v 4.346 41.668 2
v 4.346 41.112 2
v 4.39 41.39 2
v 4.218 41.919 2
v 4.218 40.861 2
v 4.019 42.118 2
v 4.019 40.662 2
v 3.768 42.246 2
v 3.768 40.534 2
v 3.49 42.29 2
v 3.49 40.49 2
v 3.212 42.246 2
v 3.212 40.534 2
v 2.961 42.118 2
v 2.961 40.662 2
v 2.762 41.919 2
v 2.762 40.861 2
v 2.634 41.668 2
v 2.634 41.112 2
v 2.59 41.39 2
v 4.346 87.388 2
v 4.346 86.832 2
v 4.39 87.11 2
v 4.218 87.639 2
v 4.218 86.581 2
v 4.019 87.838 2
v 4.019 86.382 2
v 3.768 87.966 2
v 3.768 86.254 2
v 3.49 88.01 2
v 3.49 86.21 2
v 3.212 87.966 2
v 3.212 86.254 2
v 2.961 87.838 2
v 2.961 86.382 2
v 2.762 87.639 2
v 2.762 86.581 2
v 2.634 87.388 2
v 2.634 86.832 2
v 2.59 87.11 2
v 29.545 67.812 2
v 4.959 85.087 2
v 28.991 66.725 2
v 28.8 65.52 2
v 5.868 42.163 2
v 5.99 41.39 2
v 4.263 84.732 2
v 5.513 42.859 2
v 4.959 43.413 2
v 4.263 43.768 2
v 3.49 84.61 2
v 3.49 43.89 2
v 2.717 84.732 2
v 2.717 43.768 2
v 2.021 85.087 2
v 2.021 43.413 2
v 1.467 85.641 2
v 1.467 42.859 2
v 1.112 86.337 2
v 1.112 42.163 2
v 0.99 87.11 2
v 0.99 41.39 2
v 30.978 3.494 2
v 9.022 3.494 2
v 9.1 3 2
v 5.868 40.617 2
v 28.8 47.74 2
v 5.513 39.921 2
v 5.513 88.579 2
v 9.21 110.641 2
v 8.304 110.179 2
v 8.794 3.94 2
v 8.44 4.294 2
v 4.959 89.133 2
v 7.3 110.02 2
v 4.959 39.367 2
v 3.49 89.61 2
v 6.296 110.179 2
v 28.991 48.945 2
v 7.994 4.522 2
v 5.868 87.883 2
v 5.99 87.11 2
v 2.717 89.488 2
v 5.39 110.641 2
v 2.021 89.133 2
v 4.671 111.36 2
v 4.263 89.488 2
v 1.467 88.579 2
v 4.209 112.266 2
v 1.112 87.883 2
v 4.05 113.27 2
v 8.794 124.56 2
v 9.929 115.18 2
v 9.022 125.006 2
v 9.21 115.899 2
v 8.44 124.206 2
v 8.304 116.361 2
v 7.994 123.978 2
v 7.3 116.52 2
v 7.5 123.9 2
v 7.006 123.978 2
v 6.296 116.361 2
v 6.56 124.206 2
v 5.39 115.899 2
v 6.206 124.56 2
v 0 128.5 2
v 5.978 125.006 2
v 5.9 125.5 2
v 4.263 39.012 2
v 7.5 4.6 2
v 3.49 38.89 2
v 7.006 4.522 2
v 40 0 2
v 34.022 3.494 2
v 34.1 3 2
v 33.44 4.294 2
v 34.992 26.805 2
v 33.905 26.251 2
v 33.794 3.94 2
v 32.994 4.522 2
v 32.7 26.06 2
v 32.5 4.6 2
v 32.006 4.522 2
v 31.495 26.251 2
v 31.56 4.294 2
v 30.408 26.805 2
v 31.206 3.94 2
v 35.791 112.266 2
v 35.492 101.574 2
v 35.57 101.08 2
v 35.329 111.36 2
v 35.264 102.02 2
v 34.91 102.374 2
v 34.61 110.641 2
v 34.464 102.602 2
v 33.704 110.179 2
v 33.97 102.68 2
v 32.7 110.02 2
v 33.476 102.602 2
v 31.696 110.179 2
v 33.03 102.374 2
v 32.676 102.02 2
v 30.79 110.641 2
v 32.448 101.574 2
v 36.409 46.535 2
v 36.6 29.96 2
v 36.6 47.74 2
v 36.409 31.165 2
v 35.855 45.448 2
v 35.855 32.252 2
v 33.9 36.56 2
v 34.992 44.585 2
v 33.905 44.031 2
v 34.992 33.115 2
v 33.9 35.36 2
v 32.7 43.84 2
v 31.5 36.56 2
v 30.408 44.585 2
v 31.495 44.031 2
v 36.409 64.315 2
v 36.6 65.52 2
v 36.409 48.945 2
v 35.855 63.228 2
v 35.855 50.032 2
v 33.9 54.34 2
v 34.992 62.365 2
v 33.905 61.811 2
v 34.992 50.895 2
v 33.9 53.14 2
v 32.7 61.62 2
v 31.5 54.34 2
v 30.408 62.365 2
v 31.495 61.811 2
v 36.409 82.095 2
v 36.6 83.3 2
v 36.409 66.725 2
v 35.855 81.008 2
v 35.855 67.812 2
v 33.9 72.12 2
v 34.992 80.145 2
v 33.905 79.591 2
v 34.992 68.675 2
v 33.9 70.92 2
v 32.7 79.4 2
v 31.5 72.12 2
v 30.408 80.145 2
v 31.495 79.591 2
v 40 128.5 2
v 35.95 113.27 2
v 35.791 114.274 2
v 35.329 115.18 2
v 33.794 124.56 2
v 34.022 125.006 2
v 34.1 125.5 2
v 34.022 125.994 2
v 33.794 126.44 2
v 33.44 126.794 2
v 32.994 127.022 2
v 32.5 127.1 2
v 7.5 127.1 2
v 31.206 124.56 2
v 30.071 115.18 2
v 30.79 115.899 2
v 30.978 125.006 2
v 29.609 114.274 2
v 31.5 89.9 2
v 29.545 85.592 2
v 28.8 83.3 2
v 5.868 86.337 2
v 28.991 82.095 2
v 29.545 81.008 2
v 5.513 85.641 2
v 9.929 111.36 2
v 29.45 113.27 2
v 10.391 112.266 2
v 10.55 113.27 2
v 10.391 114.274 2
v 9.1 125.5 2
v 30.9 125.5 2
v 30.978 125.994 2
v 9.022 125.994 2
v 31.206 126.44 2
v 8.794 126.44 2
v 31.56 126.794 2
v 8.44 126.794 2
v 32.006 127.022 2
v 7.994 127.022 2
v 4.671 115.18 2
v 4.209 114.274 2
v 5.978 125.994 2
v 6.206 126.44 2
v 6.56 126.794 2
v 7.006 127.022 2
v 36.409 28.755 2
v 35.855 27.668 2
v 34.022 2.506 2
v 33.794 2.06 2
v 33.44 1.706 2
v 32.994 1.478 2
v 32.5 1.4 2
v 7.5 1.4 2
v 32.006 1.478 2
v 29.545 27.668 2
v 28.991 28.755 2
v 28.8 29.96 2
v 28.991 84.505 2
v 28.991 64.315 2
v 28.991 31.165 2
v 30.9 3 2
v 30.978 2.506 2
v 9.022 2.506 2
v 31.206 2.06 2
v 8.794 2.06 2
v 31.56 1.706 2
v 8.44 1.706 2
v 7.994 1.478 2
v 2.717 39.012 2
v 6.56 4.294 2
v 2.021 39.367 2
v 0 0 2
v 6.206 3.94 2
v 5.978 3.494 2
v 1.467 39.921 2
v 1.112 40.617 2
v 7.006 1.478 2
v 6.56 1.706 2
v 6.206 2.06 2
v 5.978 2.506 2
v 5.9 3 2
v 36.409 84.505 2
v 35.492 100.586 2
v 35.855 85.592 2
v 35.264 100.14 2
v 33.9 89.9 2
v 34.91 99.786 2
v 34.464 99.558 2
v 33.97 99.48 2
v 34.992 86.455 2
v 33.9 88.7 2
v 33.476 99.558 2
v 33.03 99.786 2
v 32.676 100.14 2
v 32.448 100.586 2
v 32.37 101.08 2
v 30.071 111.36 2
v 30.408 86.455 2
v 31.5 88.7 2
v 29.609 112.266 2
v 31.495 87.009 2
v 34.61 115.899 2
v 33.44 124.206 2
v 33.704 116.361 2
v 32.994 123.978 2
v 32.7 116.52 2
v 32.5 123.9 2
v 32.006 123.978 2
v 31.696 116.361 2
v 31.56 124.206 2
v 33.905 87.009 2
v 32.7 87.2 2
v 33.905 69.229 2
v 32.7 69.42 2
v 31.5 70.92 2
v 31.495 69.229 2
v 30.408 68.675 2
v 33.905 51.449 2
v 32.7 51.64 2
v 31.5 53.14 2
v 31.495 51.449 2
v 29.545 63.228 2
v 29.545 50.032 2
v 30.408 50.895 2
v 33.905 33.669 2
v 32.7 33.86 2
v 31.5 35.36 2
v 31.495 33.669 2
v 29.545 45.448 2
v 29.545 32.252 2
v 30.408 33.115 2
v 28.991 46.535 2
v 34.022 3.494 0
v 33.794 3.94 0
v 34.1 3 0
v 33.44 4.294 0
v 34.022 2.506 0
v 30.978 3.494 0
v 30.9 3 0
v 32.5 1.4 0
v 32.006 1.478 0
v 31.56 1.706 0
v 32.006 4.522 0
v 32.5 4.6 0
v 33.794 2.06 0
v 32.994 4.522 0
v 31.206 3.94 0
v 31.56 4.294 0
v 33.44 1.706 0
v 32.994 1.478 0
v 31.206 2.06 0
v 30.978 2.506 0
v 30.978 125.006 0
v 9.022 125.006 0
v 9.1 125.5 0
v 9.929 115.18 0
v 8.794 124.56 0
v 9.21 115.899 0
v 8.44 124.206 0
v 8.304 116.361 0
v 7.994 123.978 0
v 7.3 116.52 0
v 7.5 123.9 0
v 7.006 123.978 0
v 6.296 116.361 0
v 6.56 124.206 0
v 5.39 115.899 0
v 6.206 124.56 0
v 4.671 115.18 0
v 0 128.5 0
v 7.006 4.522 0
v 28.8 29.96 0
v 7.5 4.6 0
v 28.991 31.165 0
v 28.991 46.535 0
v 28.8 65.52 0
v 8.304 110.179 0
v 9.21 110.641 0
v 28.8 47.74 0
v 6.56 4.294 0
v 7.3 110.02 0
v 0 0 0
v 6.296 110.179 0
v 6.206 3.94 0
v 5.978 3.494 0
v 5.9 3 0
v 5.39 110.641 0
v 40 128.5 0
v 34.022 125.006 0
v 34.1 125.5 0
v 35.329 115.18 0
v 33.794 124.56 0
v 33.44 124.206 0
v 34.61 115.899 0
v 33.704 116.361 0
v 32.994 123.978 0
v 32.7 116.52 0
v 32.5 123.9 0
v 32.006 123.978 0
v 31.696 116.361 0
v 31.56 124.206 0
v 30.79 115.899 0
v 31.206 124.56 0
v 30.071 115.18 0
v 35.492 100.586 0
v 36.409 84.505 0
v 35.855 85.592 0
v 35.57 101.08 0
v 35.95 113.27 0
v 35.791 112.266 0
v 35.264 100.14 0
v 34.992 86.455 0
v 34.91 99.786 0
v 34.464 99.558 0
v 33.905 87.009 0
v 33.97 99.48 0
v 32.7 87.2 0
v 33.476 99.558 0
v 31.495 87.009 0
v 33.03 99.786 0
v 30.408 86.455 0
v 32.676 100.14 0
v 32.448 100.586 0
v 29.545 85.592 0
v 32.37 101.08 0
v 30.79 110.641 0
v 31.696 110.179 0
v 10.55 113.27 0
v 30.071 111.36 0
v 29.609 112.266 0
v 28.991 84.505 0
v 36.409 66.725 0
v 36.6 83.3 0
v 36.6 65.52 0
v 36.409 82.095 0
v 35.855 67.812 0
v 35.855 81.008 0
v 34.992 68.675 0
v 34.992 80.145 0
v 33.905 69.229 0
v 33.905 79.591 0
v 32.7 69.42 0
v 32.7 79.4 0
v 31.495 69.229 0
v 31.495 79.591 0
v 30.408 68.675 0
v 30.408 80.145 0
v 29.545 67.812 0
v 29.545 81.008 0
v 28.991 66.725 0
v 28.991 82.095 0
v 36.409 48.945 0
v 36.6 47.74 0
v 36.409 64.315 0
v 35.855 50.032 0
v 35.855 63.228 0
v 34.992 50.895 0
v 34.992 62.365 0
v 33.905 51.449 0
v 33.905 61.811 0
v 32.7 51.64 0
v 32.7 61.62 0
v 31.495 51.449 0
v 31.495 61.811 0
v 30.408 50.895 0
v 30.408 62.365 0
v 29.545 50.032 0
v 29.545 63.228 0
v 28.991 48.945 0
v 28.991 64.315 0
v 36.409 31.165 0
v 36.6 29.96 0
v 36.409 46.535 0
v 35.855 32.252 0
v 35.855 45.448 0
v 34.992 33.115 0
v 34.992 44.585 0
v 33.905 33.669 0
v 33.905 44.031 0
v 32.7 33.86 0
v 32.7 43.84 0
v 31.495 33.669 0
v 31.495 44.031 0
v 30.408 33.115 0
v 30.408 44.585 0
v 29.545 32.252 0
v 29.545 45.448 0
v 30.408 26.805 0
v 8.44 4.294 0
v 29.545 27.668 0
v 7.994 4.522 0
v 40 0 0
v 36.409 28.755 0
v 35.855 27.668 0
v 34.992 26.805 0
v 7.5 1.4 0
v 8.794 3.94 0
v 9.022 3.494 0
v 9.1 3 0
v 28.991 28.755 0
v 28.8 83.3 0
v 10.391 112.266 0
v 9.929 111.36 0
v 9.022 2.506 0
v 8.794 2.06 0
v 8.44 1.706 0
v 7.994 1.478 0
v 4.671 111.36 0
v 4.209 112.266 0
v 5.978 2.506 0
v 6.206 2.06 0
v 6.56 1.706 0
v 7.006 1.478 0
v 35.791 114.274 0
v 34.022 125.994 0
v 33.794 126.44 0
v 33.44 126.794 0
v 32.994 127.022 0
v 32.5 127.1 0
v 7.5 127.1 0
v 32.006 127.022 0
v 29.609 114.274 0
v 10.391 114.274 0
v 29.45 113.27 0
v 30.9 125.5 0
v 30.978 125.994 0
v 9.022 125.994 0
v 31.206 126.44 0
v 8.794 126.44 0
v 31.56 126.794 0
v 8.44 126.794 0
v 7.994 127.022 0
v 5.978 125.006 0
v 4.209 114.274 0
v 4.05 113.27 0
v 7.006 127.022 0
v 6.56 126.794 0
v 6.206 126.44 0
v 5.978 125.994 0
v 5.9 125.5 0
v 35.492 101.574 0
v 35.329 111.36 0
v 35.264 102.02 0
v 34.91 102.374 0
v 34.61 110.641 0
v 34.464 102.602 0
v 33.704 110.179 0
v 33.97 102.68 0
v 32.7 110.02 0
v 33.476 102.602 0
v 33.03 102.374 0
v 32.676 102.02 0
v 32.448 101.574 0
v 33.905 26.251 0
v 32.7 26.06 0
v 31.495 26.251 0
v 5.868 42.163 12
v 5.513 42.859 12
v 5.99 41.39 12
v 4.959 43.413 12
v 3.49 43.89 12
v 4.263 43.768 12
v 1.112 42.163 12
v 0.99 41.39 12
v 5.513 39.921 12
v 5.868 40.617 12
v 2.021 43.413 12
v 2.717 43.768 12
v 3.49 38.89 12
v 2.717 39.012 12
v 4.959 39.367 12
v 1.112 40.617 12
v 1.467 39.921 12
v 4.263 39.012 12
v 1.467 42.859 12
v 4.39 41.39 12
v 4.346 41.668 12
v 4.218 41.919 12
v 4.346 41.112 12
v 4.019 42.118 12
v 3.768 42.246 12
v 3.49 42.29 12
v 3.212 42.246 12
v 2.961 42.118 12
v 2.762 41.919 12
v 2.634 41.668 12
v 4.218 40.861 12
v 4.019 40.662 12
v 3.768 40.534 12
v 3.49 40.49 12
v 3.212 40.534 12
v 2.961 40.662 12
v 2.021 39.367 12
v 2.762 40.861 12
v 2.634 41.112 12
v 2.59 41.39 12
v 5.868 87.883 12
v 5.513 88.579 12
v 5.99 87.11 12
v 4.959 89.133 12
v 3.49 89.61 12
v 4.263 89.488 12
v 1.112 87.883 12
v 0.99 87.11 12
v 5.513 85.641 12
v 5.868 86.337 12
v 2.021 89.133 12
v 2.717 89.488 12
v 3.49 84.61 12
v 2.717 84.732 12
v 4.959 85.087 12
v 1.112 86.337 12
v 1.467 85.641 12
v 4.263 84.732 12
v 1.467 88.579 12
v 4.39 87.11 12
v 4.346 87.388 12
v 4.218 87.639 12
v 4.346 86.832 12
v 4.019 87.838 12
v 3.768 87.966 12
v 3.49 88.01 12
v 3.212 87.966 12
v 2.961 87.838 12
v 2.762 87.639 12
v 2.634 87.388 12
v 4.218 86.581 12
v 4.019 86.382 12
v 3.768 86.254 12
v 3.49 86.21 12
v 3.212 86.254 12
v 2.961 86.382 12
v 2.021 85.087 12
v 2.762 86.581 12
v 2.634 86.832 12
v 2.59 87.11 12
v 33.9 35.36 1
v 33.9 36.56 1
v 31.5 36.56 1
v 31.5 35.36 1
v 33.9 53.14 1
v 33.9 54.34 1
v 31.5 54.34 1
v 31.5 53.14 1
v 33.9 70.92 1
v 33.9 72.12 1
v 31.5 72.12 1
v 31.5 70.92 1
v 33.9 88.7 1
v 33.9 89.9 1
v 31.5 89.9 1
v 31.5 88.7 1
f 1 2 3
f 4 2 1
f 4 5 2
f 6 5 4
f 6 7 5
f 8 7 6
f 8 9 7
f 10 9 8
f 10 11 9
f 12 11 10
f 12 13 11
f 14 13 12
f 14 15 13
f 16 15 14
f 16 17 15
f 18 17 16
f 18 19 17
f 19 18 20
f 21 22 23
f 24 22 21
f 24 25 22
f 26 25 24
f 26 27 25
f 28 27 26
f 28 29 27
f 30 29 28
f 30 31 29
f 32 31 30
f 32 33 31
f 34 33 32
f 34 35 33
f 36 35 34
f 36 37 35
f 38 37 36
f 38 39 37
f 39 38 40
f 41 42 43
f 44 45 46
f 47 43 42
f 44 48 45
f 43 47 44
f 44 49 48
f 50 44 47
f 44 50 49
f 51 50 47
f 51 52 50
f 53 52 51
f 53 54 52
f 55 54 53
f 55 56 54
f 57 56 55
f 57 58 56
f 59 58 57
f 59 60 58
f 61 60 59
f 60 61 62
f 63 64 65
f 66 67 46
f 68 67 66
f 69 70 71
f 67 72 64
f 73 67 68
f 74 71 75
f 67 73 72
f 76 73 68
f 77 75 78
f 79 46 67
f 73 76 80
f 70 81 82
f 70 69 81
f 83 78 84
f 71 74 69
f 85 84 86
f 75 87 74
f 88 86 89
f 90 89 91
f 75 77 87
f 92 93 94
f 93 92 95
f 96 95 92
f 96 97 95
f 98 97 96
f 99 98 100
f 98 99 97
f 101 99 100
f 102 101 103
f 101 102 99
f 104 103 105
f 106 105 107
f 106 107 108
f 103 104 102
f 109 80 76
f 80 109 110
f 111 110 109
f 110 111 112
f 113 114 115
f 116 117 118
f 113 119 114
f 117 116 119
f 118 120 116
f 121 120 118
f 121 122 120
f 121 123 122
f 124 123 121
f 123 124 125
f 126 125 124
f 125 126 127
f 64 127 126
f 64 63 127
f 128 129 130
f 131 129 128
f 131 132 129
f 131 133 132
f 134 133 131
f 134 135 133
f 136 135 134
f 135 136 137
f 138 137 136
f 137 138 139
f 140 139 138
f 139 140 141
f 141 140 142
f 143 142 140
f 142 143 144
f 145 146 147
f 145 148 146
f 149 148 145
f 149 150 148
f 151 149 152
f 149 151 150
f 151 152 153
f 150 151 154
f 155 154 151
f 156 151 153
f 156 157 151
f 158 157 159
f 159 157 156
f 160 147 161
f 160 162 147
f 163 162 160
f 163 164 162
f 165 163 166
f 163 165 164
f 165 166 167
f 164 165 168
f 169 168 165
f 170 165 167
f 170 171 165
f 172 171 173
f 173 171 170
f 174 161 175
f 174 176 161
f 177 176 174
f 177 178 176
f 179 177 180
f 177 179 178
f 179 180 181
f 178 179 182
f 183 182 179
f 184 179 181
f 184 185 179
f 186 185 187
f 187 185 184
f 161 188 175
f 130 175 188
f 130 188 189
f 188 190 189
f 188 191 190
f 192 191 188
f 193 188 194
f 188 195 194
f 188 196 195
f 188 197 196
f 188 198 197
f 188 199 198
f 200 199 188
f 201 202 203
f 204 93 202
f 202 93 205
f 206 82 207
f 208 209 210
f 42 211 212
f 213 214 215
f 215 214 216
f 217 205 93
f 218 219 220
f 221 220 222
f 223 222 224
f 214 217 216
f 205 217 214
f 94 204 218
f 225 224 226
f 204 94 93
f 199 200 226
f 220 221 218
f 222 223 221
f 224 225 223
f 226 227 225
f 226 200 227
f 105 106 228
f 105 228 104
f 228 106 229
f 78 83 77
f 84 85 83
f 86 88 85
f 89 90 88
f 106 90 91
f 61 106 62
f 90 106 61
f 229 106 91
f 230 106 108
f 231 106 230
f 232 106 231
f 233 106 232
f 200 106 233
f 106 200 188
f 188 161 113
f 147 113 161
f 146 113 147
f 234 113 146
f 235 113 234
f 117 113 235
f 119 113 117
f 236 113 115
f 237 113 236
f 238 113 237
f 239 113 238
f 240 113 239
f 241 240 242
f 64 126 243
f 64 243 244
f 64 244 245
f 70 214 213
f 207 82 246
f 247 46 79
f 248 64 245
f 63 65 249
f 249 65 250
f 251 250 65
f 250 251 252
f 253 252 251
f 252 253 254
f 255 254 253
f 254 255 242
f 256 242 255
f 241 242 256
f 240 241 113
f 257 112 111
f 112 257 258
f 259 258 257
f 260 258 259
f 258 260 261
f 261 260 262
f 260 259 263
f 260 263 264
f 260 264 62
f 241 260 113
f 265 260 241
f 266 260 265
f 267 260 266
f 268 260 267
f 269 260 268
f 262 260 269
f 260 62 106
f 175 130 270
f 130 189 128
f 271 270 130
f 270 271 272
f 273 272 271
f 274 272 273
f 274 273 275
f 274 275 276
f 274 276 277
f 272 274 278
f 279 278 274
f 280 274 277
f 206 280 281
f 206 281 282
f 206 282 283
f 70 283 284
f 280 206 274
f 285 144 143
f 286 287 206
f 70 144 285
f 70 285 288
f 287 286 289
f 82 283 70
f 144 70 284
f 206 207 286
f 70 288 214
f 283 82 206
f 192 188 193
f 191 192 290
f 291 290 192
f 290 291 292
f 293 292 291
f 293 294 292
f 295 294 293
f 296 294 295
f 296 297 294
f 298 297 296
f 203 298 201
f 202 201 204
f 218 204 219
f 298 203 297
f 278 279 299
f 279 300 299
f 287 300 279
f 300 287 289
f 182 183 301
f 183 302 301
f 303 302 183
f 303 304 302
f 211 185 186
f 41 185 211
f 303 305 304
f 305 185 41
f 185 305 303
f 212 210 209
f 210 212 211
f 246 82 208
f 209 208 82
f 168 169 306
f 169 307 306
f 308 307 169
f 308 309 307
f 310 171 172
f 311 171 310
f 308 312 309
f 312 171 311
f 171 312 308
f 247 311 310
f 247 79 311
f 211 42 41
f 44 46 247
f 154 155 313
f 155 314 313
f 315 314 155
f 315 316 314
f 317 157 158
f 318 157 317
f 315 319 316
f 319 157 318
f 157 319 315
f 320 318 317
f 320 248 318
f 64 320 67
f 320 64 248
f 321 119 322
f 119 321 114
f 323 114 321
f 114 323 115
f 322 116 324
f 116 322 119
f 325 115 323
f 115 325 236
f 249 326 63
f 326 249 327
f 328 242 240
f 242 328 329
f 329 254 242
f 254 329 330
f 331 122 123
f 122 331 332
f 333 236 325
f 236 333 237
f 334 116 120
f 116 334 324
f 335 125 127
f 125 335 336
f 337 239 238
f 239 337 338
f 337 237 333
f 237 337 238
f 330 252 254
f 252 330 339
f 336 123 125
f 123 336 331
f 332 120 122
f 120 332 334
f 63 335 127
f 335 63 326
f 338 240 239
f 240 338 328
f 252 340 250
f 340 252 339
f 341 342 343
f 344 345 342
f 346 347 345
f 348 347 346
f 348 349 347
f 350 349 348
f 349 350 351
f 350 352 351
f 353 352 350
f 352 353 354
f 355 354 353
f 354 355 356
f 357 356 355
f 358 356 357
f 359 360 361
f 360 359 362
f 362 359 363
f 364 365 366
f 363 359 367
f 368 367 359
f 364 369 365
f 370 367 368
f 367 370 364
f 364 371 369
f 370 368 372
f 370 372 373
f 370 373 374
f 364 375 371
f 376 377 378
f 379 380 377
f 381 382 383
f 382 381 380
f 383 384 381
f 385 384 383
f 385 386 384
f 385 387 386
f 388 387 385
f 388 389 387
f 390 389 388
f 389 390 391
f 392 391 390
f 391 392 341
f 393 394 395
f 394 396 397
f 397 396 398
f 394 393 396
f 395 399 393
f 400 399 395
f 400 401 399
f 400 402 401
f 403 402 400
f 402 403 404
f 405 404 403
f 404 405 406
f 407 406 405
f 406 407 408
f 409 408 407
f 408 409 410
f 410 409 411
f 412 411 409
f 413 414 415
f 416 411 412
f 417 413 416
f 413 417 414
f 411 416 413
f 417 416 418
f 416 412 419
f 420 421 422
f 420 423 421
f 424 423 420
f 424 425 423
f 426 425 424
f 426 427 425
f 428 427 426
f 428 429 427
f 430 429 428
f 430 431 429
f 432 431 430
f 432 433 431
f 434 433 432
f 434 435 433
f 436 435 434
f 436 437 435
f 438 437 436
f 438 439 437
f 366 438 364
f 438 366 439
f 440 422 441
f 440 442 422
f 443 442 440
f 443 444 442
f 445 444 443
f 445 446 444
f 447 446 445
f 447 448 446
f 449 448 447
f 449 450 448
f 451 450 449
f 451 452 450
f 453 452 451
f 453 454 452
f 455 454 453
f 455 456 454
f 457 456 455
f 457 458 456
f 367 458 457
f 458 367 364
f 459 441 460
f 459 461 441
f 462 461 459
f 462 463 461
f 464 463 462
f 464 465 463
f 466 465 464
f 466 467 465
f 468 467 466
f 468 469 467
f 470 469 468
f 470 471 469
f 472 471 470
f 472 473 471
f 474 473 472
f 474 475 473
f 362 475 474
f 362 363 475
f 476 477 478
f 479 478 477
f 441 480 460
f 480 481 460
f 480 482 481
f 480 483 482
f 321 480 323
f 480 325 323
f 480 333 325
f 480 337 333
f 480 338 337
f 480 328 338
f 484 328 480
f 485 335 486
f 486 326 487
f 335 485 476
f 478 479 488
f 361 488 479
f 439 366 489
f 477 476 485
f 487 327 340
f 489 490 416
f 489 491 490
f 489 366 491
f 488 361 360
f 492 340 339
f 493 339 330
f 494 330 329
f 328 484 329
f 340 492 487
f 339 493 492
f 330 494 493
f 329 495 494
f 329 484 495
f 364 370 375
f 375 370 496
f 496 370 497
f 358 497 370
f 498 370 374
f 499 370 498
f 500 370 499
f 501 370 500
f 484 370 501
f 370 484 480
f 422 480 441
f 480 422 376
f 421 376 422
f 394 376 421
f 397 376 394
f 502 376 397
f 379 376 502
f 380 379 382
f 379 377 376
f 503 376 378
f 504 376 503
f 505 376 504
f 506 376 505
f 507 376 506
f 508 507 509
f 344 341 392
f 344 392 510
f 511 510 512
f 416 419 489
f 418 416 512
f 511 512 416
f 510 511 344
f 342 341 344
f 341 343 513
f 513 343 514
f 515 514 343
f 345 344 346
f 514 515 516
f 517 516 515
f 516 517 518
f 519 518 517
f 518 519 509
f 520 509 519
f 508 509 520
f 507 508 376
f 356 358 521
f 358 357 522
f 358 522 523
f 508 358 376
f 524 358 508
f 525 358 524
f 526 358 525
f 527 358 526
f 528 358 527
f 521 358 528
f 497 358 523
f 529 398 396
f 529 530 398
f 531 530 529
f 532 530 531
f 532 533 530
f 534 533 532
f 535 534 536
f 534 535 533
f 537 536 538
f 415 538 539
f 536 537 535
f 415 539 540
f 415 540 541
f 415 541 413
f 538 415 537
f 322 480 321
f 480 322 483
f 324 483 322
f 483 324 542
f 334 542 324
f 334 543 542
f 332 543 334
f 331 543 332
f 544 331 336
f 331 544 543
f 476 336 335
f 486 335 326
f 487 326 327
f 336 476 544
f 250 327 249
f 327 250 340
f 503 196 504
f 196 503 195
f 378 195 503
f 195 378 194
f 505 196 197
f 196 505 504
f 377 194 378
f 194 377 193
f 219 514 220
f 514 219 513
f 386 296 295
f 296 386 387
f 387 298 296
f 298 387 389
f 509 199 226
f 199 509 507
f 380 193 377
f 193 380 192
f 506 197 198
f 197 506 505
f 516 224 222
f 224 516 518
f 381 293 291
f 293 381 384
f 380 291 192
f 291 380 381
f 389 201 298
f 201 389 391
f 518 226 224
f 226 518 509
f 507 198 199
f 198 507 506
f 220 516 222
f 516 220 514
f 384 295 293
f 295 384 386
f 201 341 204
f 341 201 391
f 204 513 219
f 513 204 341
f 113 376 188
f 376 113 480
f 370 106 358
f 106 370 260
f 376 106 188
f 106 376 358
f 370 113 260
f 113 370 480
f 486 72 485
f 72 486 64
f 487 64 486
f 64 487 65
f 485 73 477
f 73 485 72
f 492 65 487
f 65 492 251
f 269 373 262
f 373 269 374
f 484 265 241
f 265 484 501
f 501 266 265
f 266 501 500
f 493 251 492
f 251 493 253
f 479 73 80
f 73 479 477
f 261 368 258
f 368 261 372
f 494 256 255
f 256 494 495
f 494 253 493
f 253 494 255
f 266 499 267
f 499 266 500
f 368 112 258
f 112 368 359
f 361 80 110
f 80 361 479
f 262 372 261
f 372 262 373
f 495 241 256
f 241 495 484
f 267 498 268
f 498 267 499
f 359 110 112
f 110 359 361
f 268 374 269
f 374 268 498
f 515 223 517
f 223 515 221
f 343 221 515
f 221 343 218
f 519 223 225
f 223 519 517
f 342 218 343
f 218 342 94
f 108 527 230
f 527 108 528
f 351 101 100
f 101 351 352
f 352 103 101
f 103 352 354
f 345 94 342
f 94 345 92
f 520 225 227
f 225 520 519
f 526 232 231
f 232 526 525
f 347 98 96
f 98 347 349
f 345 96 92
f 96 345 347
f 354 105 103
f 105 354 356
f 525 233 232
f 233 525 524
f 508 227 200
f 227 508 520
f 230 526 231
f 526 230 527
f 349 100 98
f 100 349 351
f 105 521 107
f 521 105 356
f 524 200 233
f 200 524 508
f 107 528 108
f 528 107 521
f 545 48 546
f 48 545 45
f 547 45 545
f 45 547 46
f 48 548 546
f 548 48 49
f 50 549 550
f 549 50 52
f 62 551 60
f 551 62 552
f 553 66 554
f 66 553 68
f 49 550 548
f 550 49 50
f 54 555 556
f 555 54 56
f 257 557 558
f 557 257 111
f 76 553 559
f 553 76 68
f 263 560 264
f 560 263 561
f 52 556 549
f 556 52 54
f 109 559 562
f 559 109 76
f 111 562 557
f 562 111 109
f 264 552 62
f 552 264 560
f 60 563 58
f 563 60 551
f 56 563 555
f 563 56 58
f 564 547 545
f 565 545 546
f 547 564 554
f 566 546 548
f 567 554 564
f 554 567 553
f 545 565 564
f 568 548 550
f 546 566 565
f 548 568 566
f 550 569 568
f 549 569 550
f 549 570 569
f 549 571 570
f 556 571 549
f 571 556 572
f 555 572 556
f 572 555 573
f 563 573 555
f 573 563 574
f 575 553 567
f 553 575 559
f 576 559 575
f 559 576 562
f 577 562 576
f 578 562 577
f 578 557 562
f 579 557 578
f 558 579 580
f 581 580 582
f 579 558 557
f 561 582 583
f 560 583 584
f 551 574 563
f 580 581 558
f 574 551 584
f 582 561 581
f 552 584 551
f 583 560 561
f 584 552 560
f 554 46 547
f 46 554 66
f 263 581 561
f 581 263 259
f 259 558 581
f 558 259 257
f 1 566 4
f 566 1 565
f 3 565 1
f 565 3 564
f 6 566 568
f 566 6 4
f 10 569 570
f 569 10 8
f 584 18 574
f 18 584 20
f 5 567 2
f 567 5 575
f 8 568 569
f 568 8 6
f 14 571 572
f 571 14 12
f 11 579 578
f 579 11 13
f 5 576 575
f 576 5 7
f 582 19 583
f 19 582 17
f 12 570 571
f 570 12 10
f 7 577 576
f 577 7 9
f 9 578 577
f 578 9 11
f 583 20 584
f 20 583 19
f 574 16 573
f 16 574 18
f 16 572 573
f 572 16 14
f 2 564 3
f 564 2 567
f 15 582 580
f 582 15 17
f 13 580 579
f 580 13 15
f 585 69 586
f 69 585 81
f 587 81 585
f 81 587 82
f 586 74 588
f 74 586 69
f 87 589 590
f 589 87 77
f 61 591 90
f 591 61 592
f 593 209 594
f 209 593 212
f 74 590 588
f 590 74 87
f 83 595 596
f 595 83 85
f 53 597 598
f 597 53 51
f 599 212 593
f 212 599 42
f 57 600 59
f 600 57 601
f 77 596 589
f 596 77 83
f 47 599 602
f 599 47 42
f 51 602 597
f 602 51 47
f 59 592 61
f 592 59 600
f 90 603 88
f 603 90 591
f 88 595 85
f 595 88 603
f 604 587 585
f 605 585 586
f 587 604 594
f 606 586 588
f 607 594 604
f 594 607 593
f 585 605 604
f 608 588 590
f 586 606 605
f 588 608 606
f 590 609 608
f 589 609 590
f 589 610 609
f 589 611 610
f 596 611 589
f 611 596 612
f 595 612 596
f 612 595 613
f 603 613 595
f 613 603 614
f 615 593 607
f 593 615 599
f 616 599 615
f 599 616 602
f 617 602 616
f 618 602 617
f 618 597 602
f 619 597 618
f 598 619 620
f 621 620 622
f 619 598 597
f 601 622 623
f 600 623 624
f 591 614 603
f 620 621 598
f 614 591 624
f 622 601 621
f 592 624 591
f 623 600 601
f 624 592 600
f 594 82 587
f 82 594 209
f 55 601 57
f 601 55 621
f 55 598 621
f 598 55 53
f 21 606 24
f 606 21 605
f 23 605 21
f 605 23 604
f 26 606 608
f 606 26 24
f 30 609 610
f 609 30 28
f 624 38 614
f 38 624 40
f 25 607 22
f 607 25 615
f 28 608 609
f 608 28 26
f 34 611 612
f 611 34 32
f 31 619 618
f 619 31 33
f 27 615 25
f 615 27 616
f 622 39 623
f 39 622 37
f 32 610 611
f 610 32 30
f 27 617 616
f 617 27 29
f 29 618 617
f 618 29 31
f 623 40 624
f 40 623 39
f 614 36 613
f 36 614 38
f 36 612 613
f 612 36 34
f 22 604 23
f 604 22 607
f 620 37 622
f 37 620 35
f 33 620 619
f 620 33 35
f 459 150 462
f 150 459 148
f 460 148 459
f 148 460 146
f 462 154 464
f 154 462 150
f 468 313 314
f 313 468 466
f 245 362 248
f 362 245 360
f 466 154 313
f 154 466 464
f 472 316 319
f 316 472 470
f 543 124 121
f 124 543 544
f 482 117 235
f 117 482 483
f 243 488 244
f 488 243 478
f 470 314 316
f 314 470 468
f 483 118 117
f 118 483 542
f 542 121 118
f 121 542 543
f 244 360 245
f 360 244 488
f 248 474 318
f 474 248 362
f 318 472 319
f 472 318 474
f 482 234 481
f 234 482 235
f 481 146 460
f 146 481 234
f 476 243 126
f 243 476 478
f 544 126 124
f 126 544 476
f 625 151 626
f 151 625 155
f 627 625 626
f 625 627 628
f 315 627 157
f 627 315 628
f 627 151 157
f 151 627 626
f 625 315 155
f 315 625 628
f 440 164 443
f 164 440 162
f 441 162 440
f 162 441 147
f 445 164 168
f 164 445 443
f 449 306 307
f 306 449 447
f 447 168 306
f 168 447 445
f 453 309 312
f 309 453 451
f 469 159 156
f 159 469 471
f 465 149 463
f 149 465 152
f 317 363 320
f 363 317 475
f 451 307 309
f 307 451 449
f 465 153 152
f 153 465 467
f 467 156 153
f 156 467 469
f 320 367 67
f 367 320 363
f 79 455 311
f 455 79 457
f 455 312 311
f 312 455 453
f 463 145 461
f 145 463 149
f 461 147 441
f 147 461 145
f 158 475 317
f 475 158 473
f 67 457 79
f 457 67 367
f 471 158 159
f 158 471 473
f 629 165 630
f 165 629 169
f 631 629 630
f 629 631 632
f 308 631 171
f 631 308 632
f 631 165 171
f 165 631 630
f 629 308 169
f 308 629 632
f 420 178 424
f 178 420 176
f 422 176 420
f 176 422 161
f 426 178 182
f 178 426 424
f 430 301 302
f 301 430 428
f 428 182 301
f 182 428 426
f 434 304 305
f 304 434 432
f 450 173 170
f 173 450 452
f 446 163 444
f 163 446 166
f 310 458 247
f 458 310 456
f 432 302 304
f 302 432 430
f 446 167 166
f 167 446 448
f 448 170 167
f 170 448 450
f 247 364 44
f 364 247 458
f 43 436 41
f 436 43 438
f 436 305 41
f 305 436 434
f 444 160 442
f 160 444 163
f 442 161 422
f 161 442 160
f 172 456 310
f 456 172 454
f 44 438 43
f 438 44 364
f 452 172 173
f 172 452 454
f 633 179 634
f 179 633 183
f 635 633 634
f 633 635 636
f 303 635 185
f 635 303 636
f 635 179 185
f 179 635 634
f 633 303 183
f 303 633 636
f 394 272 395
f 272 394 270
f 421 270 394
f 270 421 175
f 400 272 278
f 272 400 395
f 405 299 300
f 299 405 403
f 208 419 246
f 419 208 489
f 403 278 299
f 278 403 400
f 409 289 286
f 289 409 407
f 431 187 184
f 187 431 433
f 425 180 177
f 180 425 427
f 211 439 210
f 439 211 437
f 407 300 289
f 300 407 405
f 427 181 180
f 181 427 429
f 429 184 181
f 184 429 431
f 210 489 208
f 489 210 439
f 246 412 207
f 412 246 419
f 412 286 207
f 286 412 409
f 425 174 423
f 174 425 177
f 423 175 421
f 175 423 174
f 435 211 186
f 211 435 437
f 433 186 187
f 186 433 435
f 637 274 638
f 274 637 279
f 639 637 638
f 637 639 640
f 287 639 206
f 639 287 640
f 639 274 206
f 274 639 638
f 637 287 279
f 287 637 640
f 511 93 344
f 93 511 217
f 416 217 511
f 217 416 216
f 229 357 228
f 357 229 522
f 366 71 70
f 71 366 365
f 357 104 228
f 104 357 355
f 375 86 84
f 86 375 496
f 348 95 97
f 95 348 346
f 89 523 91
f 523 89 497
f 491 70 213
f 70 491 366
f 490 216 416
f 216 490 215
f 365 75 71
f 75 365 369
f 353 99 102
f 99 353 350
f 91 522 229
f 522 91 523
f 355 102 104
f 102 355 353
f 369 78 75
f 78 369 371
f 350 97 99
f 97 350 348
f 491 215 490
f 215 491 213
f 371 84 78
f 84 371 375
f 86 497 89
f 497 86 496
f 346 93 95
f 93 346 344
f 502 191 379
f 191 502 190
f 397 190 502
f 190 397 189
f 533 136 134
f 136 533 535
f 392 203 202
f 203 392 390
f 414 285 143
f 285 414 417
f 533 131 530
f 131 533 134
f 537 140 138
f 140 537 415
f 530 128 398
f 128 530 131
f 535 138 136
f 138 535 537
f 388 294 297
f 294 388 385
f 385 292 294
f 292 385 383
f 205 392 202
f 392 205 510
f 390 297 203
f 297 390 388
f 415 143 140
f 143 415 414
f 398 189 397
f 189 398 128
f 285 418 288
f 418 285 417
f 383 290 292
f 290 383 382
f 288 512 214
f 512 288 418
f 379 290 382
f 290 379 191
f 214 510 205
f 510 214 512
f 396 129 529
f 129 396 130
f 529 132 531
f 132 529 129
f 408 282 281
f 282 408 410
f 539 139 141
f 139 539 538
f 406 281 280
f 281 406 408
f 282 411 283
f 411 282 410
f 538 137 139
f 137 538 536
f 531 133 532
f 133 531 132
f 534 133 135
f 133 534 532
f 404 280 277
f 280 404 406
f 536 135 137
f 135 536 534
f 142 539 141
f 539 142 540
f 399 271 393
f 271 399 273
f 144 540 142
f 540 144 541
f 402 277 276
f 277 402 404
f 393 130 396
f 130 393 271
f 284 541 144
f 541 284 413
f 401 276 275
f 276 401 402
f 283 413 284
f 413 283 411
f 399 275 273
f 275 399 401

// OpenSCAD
// file: ../../../share/openscad/eurorack-panel.scad
// this is based on A100 spec from doepfer https://doepfer.de/a100_man/a100m_e.htm

eurorack_panel_height = function() 128.5;
eurorack_panel_width = function(width_in_hp) width_in_hp * 5;

module eurorack_panel(width_in_hp, thickness=2) {
    difference() {
        cube([eurorack_panel_width(width_in_hp), eurorack_panel_height(), thickness]);

        translate([7.5, 3, 0])
            cylinder(thickness, d=3.2, $fn=20);
        translate([7.5, eurorack_panel_height() - 3, 0])
            cylinder(thickness, d=3.2, $fn=20);

        if (width_in_hp >= 8) {
            translate([eurorack_panel_width(width_in_hp) - 7.5, 3, 0])
                cylinder(thickness, d=3.2, $fn=20);
            translate([eurorack_panel_width(width_in_hp) - 7.5, eurorack_panel_height() - 3, 0])
                cylinder(thickness, d=3.2, $fn=20);
        }
    }
}
// main file
/*
 * SPDX-FileCopyrightText: 2021-2022 Rafael G. Martins <rafael@rafaelmartins.eng.br>
 * SPDX-License-Identifier: CERN-OHL-S-2.0
 */

include <../../../share/openscad/eurorack-panel.scad>

// WARNING: this is a panel for my personal handwired prototype.
//          it won't match the "official" PCBs.

width_in_hp = 8;
thickness = 2;

pcb_width = 38.100;
pcb_height = 111.760;

pcb0_x = (eurorack_panel_width(width_in_hp) - pcb_width) / 2;
pcb0_y = (eurorack_panel_height() - pcb_height) / 2;

screw_base_distance_x = 2.54;
screw_base_distance_y = 33.02;
screw_base_spacing = 45.72;

pot_d = 7.8;
pot_distance_x = 31.75;
pot_distance_y = 21.59;
pot_spacing = 17.78;
pot_tag_width = 2.4;
pot_tag_length = 1.2;
pot_tag_height = 1;
pot_tag_from_center_x = -pot_tag_width / 2;
pot_tag_from_center_y = 6 - pot_tag_length / 2;

led_d = 3.2;
led_distance_x = 33.02;
led_distance_y = 92.71;

jack_d = 6.5;
jack_distance_x = 6.35;
jack_distance_y = 104.9;
jack_spacing = 25.4;

difference() {
    union() {
        eurorack_panel(width_in_hp, thickness);

        translate([pcb0_x, pcb0_y, thickness]) {
            for (i = [0 : 1]) {
                translate([screw_base_distance_x, screw_base_distance_y + i * screw_base_spacing, 0]) {
                    difference() {
                        cylinder(10, d=5, $fn=20);
                        cylinder(10, d=1.8, $fn=20);
                    }
                }
            }
        }
    }

    translate([pcb0_x, pcb0_y, 0]) {
        for (i = [0 : 3]) {
            translate([pot_distance_x, pot_distance_y + i * pot_spacing, 0]) {
                cylinder(thickness, d=pot_d, $fn=20);
                translate([pot_tag_from_center_x, pot_tag_from_center_y, thickness - pot_tag_height])
                    cube([pot_tag_width, pot_tag_length, pot_tag_height]);
            }
        }

        translate([led_distance_x, led_distance_y, 0])
            cylinder(thickness, d=led_d, $fn=20);

        for (i = [0 : 1]) {
            translate([jack_distance_x + i * jack_spacing, jack_distance_y, 0])
                cylinder(thickness, d=jack_d, $fn=20);
        }
    }
}
